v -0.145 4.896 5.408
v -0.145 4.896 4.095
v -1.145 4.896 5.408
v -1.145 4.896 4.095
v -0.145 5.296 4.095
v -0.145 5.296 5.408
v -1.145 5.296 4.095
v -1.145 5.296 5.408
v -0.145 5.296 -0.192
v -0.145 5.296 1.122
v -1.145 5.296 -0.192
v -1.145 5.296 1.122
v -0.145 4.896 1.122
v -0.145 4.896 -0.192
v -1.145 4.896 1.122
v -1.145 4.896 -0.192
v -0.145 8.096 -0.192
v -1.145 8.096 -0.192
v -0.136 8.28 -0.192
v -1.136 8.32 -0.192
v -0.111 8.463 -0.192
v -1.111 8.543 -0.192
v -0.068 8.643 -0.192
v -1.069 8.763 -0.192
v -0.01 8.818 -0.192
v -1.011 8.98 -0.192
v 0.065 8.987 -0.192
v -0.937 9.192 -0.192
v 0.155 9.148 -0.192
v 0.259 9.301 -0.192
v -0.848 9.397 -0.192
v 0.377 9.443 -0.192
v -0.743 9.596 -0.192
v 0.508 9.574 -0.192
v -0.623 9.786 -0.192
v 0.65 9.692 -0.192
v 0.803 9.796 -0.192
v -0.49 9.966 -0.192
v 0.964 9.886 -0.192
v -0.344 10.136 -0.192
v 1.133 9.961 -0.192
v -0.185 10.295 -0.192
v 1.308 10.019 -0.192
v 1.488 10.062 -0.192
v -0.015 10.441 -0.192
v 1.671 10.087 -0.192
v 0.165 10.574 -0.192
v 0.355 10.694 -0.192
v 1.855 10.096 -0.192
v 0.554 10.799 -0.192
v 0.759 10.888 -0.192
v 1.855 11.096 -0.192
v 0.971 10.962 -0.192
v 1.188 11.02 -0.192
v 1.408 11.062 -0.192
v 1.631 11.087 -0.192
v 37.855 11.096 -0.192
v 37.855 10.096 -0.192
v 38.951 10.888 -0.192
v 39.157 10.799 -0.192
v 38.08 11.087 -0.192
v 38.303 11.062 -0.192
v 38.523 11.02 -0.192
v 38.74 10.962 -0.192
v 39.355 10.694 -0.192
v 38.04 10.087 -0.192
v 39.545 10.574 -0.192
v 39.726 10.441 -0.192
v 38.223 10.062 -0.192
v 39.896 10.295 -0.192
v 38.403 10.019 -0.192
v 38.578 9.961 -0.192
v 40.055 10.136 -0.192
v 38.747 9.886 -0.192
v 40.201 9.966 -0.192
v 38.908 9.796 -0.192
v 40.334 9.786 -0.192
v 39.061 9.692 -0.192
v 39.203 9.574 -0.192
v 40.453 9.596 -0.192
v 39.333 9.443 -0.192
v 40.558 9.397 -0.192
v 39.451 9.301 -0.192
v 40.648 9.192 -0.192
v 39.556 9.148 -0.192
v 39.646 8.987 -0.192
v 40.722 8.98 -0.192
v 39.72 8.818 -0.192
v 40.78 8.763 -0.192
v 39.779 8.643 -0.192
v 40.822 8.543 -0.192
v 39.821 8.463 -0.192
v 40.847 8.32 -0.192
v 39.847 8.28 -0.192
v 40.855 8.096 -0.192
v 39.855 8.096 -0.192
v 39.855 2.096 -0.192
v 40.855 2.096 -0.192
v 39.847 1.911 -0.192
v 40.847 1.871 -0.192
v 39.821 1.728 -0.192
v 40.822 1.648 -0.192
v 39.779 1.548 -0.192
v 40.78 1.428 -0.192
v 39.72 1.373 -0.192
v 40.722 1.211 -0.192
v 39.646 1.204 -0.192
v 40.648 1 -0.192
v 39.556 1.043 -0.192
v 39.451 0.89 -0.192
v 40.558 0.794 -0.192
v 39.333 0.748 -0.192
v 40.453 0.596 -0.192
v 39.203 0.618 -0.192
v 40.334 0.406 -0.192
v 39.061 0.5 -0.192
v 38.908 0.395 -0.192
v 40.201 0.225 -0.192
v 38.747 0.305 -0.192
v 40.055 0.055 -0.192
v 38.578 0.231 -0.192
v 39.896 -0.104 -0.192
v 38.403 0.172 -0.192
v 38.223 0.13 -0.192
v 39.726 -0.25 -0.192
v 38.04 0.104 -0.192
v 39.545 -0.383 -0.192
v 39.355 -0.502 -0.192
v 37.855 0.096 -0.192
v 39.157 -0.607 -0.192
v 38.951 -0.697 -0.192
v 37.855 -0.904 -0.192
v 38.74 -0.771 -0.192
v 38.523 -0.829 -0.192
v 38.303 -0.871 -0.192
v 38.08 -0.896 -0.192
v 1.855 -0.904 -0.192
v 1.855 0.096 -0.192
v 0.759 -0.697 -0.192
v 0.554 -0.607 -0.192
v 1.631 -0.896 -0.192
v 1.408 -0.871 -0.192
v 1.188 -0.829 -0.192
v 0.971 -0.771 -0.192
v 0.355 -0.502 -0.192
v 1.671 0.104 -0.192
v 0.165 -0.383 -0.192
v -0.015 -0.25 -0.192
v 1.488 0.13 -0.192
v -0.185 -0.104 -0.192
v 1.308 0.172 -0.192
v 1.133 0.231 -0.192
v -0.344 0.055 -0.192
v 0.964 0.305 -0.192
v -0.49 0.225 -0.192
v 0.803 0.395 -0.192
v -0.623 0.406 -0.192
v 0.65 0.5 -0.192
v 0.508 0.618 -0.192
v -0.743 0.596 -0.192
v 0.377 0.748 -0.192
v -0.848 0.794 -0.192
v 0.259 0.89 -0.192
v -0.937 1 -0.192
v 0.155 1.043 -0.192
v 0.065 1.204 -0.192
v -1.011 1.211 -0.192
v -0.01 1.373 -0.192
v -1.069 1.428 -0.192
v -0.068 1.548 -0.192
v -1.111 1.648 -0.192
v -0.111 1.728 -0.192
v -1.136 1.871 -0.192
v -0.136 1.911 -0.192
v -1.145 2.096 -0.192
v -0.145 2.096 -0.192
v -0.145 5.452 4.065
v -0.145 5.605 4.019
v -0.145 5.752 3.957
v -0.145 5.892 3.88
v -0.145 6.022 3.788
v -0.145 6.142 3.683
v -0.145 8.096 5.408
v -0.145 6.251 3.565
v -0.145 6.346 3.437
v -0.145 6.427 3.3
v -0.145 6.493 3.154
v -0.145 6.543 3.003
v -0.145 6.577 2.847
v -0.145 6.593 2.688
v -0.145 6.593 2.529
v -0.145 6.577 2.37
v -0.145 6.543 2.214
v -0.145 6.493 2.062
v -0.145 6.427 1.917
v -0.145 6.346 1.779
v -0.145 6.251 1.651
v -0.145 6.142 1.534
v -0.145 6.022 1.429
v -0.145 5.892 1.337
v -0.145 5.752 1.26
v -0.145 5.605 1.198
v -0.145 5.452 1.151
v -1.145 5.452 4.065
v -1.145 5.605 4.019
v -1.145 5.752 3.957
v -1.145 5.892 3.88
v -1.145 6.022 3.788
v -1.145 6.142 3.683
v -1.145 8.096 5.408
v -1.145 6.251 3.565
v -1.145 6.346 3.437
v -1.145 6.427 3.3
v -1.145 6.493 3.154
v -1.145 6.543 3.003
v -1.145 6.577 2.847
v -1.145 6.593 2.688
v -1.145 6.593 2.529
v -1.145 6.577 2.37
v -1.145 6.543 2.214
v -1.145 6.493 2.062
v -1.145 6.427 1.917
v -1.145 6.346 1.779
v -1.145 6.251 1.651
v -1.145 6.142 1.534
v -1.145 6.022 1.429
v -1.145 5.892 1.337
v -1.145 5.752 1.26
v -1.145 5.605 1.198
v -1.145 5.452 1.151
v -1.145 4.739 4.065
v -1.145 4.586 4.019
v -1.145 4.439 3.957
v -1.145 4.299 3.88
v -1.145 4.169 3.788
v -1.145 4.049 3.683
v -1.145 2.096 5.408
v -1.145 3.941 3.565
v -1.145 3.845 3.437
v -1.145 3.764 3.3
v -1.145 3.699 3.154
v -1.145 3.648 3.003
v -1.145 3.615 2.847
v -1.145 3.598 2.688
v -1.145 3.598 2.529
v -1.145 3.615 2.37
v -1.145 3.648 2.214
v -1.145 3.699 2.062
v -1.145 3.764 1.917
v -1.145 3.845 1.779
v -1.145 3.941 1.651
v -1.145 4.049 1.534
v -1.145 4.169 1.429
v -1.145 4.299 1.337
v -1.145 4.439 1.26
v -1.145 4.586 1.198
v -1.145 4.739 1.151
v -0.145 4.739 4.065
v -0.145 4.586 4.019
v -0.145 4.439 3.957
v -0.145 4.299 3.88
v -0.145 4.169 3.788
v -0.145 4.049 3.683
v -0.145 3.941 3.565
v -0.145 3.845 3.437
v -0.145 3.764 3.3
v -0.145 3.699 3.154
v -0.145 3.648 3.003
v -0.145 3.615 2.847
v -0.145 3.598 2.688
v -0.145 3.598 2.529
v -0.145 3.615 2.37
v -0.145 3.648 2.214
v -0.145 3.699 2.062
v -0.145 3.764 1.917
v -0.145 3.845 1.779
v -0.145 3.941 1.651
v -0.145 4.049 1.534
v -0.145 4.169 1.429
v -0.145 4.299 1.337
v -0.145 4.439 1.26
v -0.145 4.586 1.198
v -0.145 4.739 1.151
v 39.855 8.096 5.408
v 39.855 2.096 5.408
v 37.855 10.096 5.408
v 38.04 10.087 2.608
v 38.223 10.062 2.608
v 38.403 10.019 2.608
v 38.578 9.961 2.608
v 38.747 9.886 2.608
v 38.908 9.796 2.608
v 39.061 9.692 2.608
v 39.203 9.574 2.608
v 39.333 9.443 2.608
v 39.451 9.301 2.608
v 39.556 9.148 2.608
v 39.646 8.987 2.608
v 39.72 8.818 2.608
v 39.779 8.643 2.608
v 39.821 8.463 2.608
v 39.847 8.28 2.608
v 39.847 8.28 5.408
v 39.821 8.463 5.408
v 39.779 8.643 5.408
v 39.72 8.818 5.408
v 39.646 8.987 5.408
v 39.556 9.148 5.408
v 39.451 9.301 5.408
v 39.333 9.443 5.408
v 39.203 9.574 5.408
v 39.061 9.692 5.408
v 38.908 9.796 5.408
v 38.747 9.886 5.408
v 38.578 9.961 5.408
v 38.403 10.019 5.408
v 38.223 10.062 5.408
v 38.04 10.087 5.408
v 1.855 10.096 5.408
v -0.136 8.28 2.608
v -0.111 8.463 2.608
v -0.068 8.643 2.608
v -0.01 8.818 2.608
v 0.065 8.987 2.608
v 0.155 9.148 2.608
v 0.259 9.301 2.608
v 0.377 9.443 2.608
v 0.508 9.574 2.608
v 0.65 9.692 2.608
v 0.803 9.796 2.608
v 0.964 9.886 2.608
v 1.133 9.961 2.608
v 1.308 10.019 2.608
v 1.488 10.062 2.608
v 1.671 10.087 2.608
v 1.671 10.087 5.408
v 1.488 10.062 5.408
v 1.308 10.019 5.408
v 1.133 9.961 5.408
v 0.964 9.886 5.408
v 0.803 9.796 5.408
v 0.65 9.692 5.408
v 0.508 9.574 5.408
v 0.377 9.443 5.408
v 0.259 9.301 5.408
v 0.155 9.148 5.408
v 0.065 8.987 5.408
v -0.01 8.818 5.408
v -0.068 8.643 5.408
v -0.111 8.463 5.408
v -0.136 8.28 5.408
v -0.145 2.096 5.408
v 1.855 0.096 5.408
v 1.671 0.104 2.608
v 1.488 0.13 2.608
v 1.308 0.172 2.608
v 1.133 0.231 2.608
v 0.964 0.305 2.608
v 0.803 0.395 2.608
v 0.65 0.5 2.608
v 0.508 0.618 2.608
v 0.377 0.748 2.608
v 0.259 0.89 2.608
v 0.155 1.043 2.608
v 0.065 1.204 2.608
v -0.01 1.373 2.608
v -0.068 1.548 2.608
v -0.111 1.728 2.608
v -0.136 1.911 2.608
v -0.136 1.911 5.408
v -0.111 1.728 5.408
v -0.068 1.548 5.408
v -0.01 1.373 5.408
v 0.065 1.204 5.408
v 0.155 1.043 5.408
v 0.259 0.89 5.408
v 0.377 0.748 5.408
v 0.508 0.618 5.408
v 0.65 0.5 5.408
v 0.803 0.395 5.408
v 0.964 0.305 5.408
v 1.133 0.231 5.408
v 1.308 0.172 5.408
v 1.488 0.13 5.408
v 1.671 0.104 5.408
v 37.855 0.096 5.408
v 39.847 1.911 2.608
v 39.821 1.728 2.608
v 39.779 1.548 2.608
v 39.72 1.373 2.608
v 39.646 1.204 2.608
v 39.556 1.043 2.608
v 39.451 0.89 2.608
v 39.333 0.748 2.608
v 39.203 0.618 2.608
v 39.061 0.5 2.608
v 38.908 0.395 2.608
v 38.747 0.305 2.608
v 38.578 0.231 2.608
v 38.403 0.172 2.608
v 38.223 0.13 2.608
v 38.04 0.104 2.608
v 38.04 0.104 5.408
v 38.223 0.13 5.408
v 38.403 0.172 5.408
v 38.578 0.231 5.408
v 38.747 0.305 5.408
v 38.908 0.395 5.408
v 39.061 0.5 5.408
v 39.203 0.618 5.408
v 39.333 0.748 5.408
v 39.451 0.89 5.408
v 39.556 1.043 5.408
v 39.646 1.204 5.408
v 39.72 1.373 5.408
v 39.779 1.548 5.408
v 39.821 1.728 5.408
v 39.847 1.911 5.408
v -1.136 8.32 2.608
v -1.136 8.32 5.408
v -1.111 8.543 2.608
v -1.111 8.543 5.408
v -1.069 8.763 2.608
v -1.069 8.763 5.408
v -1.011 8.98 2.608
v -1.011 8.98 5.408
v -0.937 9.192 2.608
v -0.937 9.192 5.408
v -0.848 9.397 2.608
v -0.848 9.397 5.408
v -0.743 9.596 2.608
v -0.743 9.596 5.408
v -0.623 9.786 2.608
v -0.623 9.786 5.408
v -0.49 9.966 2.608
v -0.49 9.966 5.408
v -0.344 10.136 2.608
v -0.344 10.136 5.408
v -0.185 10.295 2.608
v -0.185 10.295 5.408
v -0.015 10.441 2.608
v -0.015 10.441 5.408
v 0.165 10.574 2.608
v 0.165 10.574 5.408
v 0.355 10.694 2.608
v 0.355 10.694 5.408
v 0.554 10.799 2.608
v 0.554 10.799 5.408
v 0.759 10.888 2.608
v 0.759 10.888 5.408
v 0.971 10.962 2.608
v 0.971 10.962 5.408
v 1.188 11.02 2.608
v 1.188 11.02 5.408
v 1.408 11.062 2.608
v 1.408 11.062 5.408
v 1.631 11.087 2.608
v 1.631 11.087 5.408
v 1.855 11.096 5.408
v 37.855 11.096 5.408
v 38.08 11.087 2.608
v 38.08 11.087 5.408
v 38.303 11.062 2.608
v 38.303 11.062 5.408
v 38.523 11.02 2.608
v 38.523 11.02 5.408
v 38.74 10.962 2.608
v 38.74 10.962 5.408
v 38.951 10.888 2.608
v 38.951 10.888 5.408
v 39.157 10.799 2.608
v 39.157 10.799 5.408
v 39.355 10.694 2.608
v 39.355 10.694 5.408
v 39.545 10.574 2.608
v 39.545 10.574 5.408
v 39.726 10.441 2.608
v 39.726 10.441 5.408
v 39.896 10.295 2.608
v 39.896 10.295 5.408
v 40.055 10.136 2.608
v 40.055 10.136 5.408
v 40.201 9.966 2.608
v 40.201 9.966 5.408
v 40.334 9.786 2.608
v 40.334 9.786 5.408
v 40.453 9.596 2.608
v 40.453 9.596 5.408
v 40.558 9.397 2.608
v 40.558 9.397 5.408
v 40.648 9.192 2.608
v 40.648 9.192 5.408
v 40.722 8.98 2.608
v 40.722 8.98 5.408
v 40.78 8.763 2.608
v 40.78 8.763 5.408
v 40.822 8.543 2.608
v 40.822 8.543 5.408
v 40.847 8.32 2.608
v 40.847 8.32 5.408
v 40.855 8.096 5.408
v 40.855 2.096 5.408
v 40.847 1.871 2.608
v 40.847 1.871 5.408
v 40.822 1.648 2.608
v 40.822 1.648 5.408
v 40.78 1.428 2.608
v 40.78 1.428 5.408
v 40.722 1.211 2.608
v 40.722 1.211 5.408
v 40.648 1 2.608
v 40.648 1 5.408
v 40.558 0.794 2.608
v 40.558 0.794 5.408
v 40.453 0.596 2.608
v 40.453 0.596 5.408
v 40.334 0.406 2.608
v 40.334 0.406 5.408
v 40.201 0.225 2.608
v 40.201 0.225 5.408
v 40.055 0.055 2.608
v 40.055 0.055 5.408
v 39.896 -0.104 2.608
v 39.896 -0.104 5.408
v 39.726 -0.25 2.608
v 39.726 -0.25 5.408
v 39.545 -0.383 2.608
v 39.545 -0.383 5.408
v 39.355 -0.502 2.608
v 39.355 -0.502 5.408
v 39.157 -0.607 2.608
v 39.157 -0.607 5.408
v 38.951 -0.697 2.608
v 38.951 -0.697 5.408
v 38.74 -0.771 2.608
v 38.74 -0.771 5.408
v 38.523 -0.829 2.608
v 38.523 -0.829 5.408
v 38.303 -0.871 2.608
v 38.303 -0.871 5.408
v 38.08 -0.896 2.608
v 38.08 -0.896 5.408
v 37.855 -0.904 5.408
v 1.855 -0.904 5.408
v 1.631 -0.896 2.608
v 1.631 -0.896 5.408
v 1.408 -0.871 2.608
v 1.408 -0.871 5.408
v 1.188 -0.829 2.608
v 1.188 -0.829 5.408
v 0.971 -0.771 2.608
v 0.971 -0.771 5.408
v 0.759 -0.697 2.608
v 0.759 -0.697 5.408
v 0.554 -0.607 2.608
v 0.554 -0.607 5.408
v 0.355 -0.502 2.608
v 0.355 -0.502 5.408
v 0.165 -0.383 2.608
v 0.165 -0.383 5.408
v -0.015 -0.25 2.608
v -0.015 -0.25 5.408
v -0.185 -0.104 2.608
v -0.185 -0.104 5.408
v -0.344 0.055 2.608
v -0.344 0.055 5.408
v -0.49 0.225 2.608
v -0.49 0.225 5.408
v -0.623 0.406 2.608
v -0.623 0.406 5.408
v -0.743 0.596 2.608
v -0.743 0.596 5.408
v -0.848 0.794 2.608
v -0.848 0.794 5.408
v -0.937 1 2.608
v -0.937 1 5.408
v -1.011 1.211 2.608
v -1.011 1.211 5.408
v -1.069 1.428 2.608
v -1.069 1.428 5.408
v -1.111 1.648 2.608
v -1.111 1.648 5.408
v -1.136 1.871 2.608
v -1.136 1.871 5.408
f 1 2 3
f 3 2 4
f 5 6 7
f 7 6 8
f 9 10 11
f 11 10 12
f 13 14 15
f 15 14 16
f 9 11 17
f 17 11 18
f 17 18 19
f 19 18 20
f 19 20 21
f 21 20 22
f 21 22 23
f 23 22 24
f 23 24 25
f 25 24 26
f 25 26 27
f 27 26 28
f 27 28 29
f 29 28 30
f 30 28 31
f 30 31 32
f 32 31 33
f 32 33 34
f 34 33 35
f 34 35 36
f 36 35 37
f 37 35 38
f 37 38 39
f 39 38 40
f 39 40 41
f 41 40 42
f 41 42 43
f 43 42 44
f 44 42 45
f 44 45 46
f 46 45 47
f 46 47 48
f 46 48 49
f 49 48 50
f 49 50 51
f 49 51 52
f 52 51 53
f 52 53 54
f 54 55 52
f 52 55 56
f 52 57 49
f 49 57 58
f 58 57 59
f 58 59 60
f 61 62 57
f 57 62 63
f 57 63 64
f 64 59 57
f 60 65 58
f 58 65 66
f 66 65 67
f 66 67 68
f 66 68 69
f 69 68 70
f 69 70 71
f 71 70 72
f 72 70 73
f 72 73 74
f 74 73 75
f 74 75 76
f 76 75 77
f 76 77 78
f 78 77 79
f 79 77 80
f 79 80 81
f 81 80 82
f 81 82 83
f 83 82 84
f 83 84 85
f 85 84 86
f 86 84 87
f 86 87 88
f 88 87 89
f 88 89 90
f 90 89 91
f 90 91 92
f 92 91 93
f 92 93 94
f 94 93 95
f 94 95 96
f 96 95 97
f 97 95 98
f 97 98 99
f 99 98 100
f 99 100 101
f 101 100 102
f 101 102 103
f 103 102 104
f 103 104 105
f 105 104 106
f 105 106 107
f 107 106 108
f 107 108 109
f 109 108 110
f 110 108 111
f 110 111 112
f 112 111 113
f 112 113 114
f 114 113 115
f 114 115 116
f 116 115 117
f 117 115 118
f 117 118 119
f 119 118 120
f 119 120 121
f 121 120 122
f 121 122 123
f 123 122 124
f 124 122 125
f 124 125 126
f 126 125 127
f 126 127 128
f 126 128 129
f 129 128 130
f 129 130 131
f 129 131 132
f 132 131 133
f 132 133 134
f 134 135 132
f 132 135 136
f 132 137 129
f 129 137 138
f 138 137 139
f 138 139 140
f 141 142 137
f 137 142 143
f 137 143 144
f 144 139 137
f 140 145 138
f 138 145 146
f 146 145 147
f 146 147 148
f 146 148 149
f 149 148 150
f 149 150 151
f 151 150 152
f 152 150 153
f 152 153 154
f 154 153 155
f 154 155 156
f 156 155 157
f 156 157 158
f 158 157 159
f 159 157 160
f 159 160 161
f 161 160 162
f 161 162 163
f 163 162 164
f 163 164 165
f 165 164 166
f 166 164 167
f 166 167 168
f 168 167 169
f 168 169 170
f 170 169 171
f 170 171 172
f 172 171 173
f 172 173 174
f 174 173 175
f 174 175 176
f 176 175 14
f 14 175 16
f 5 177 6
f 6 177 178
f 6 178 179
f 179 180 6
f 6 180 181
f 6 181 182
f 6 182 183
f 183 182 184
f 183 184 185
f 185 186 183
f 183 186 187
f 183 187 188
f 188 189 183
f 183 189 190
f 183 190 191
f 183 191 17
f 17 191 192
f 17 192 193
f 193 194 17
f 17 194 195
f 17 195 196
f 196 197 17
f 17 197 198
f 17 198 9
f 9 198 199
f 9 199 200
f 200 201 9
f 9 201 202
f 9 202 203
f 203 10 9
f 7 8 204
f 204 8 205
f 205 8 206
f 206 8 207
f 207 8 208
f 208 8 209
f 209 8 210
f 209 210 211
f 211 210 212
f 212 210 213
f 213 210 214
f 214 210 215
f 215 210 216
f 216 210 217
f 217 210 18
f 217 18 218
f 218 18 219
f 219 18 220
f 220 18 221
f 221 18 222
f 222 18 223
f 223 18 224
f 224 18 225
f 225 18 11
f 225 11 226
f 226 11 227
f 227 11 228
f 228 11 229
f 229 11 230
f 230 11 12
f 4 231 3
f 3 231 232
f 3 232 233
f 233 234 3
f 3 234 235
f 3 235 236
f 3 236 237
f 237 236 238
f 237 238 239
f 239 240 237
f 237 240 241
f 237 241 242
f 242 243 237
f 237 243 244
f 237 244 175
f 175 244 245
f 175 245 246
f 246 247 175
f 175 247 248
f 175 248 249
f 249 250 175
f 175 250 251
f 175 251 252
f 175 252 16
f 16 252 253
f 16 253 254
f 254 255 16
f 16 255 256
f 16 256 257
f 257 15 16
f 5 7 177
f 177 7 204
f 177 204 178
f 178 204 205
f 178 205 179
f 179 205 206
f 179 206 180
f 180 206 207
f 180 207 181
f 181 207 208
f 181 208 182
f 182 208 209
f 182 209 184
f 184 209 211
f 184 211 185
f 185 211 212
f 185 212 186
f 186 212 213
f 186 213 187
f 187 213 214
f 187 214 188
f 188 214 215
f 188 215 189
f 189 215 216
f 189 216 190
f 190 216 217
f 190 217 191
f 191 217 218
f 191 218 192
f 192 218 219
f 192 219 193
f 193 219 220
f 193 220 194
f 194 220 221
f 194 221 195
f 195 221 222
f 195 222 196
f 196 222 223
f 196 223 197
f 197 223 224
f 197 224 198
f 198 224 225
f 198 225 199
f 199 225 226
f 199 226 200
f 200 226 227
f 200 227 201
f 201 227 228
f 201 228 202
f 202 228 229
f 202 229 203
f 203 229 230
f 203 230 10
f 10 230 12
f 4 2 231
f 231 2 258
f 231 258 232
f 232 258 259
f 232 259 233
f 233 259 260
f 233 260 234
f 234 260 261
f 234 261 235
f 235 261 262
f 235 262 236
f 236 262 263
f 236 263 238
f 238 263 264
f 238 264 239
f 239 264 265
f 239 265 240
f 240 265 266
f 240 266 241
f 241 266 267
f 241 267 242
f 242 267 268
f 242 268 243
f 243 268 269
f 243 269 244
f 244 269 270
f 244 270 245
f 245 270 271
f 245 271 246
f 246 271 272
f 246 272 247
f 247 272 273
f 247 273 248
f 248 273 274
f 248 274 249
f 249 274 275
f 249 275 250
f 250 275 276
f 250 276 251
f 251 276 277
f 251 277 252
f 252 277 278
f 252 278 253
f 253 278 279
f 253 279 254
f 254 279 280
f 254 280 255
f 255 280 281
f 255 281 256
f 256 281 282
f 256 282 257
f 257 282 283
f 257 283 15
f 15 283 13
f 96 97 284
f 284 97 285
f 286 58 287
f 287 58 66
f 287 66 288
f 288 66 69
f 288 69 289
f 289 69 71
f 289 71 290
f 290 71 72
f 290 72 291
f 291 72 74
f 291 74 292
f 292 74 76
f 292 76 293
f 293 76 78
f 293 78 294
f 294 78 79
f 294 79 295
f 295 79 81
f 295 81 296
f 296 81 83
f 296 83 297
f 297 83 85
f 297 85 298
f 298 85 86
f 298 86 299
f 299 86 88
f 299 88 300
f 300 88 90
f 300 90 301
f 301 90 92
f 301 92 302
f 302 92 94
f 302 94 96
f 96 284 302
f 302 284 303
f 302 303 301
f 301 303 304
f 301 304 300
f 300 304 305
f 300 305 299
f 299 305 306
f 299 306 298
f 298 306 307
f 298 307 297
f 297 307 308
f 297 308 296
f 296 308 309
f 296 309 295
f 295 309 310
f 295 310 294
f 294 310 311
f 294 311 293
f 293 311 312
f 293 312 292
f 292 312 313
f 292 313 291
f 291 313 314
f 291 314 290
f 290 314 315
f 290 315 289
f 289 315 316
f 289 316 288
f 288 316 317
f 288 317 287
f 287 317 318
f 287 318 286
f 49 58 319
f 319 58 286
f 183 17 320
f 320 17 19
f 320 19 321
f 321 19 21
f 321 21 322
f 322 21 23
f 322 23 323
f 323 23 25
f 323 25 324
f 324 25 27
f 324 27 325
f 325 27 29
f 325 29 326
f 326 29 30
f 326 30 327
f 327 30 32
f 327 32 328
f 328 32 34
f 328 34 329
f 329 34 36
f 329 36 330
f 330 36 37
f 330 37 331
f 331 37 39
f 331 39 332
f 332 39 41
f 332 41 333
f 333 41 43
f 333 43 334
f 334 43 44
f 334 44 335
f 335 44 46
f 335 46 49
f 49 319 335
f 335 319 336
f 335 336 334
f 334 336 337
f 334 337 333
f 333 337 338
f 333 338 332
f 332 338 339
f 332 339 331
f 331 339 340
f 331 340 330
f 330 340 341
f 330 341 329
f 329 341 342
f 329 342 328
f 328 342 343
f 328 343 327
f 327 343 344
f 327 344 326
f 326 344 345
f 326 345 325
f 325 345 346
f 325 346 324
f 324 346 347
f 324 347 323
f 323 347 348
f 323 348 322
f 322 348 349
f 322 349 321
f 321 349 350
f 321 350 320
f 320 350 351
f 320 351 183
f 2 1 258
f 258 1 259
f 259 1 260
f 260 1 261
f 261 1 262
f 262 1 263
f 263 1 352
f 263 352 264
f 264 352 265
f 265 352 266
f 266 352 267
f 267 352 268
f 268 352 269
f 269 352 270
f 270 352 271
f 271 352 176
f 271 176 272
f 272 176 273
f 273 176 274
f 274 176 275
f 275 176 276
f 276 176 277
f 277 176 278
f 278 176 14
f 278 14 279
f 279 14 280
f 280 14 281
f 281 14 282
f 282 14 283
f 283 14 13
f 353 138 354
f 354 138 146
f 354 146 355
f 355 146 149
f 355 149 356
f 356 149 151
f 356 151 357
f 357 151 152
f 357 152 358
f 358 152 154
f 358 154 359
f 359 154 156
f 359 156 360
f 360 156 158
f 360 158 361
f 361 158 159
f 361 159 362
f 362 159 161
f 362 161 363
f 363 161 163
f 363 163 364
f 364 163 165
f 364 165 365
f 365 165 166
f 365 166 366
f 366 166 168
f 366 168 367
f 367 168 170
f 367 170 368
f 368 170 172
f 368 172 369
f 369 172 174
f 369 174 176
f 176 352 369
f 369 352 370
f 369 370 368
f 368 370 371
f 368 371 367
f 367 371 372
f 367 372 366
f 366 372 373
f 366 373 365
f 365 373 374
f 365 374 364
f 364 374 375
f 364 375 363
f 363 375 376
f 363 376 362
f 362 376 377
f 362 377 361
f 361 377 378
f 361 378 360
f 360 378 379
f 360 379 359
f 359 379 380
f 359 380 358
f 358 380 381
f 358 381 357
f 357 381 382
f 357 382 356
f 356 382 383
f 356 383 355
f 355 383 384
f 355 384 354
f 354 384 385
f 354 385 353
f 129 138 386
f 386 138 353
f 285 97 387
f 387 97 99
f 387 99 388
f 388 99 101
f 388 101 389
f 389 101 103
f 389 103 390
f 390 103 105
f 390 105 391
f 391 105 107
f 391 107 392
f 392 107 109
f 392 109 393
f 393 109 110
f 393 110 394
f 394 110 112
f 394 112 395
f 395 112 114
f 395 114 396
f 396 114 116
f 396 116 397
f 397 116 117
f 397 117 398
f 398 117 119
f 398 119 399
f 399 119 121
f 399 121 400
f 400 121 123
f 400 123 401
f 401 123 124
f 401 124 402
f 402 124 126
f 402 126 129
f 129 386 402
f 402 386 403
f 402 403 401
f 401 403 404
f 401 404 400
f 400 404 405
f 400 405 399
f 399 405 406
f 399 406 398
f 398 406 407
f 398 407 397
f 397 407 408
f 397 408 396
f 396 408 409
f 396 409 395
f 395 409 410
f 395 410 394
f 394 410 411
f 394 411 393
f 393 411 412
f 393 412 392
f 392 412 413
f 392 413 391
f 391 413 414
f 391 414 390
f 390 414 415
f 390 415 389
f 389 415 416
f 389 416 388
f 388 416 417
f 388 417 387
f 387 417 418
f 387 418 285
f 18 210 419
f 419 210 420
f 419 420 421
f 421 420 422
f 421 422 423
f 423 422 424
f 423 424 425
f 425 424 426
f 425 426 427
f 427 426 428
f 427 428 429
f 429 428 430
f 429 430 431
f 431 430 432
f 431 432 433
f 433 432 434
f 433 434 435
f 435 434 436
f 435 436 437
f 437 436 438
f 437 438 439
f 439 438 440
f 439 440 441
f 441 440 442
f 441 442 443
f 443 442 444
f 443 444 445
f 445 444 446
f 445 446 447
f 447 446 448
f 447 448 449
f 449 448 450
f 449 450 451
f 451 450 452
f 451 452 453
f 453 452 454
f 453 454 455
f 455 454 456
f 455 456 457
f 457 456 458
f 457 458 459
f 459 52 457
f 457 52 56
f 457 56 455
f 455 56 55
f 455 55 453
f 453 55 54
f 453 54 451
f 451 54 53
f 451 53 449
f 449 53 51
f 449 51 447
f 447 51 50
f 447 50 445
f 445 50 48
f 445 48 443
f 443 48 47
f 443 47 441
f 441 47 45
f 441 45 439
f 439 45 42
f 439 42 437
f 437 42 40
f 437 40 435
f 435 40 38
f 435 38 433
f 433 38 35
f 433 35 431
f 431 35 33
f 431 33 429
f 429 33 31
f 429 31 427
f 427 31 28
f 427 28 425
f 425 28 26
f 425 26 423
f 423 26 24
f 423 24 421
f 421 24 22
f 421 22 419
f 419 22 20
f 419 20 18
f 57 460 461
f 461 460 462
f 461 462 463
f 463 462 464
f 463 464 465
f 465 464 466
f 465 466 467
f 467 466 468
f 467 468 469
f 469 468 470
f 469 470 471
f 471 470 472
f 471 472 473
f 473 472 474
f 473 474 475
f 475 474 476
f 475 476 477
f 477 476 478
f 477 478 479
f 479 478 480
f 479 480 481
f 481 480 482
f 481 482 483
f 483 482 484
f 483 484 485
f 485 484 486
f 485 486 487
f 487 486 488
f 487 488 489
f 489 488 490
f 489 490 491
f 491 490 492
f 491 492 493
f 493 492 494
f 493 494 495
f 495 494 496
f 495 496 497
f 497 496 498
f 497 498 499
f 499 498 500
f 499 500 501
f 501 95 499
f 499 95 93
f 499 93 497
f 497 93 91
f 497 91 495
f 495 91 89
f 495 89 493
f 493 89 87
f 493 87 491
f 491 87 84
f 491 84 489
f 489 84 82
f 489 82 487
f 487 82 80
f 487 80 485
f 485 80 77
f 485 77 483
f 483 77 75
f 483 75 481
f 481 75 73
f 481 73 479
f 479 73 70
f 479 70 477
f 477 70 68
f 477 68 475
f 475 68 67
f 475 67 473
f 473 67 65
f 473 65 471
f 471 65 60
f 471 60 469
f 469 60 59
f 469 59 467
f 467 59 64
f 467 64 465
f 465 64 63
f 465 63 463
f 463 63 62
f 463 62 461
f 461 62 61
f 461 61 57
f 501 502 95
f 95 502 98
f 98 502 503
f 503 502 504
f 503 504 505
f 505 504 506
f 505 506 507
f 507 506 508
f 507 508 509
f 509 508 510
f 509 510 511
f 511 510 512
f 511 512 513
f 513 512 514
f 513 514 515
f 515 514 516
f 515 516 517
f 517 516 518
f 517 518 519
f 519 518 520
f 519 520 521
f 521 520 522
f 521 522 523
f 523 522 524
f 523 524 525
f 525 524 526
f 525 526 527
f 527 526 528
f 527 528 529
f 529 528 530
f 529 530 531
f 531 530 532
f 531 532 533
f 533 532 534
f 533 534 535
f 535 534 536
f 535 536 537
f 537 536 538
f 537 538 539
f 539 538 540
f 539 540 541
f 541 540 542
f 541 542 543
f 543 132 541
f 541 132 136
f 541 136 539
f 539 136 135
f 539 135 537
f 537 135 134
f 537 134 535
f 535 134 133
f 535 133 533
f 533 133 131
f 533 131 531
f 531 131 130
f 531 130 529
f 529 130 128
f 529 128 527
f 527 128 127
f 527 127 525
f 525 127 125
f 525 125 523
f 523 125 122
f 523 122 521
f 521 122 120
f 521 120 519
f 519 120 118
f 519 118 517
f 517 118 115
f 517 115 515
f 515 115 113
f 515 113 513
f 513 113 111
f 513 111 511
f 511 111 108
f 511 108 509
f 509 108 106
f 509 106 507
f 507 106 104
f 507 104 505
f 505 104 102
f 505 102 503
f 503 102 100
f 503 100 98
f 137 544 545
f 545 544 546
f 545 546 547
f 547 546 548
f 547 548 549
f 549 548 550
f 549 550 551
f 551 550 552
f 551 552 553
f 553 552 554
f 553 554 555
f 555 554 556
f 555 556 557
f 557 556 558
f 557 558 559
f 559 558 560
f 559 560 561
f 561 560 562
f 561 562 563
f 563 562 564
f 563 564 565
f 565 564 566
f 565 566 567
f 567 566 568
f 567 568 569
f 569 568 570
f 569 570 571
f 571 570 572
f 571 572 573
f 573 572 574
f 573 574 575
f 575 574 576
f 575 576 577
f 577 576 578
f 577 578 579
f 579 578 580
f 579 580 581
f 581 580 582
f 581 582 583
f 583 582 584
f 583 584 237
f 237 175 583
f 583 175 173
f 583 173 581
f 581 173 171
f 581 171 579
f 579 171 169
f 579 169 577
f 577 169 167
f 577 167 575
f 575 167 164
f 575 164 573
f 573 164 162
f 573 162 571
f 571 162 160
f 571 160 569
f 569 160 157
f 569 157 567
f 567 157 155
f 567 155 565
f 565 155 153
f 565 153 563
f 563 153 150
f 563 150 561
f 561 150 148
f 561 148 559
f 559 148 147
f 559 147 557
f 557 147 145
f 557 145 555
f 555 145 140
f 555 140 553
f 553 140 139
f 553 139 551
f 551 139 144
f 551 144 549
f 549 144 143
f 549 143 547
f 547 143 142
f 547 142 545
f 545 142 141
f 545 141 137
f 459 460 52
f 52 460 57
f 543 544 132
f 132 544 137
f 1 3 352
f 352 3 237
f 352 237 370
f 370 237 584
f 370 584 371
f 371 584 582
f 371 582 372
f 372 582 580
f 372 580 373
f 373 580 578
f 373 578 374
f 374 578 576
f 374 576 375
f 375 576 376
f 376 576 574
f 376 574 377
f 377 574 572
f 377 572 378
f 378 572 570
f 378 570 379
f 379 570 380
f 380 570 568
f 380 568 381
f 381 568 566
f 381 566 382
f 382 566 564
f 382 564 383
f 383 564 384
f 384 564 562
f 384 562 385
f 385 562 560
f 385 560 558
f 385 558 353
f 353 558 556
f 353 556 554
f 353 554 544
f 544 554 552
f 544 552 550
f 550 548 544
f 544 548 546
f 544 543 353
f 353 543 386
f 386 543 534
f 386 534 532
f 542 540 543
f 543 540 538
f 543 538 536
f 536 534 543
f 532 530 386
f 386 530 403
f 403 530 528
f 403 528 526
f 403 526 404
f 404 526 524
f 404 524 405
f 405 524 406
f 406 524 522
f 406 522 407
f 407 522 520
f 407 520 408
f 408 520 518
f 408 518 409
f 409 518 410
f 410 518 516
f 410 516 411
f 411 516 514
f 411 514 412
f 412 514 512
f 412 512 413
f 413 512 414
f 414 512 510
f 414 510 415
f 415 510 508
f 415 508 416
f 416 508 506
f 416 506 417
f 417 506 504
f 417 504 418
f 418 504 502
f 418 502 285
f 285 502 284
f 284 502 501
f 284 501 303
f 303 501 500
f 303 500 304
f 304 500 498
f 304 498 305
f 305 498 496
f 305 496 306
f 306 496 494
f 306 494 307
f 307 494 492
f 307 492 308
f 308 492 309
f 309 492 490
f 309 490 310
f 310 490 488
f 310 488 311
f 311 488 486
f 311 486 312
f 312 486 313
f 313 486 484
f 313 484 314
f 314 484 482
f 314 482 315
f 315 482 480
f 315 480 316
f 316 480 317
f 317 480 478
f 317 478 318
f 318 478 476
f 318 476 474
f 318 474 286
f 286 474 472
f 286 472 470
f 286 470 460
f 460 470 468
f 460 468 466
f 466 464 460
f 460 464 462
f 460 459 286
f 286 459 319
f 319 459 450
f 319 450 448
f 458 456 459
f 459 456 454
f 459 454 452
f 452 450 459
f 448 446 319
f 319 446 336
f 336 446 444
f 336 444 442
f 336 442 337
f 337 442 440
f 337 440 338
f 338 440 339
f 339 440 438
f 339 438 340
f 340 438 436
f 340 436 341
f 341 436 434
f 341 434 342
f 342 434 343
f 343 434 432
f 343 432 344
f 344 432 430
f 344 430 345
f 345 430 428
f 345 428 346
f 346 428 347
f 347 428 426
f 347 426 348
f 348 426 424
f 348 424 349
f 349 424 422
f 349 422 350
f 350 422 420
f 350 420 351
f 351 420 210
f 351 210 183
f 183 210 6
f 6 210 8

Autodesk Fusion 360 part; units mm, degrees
sketch "Base" plane through (0, 0, 0) normal (0, 0, 1) x (1, 0, 0) in component " Thermistor Silicon Mold"
  line L0 (0, 0) -> (42, 0)
  line L1 (42, 0) -> (42, 12)
  line L2 (42, 12) -> (0, 12)
  line L3 (0, 12) -> (0, 0)
  dimension "d1" = 42
  dimension "d2" = 12
extrude "Extrude1" add sketch "Base" along normal blind 5.6 in component " Thermistor Silicon Mold"
fillet "Fillet1" radius 3 4 edges at (0, 0, 2.8) (42, 0, 2.8) (42, 12, 2.8) (0, 12, 2.8) in component " Thermistor Silicon Mold"
sketch "Hollow" plane through (0, 0, 5.6) normal (0, 0, 1) x (-1, 0, 0) in component " Thermistor Silicon Mold"
  arc A0 (-3, -12) -> (0, -9) centre (-3, -9) ccw
  line L0 (0, -9) -> (0, -3)
  arc A1 (0, -3) -> (-3, 0) centre (-3, -3) ccw
  line L1 (-3, 0) -> (-39, 0)
  arc A2 (-39, 0) -> (-42, -3) centre (-39, -3) ccw
  line L2 (-42, -3) -> (-42, -9)
  arc A3 (-42, -9) -> (-39, -12) centre (-39, -9) ccw
  line L3 (-39, -12) -> (-3, -12)
  line L4 (-1, -9) -> (-1, -3)
  arc A4 (-1, -3) -> (-3, -1) centre (-3, -3) ccw
  line L5 (-3, -1) -> (-39, -1)
  arc A5 (-39, -1) -> (-41, -3) centre (-39, -3) ccw
  line L6 (-41, -3) -> (-41, -9)
  arc A6 (-41, -9) -> (-39, -11) centre (-39, -9) ccw
  line L7 (-39, -11) -> (-3, -11)
  arc A7 (-3, -11) -> (-1, -9) centre (-3, -9) ccw
  dimension "d7" = -1
extrude "Extrude2" cut sketch "Hollow" against normal up to surface (5.6 mm away) contours L4 A4 L5 A5 L6 A6 L7 A7 in component " Thermistor Silicon Mold"
sketch "Hole" plane through (0, 0, 0) normal (-1, 0, 0) x (0, -1, 0) in component " Thermistor Silicon Mold"
  line L0 (-9, 5.6) -> (-9, 0)
  line L1 (-9, 0) -> (-3, 0)
  line L2 (-3, 0) -> (-3, 5.6)
  line L3 (-3, 5.6) -> (-9, 5.6)
  line L4 (-6, 5.6) -> (-6, 0) construction
  line L5 (-9, 2.8) -> (-3, 2.8) construction
  circle A0 centre (-6, 2.8) radius 1.5
  dimension "d10" = 3
extrude "Extrude3" cut sketch "Hole" against normal up to surface (1 mm away) contours A0 in component " Thermistor Silicon Mold"
sketch "Cut Through" plane through (0, 0, 0) normal (-1, 0, 0) x (0, -1, 0) in component " Thermistor Silicon Mold"
  circle A0 centre (-6, 2.8) radius 1.5
  line L0 (-9, 5.6) -> (-9, 0)
  line L1 (-9, 0) -> (-3, 0)
  line L2 (-3, 0) -> (-3, 5.6)
  line L3 (-3, 5.6) -> (-9, 5.6)
  line L4 (-6, 5.6) -> (-6, 0) construction
  line L5 (-6, 5.6) -> (-6.2, 5.6)
  line L6 (-6, 5.6) -> (-5.8, 5.6)
  line L7 (-6.2, 5.6) -> (-6.2, 0)
  line L8 (-5.8, 5.6) -> (-5.8, 0)
  line L9 (-6.2, 0) -> (-5.8, 0)
  dimension "d13" = 0.2
  dimension "d14" = 0.2
extrude "Extrude4" cut sketch "Cut Through" against normal up to surface (1 mm away) contours A0 L3 L5 L6 L7 L8 | A0 L1 L7 L8 L9 in component " Thermistor Silicon Mold"
component " Thermistor Silicon Mold" placed x (1, 0, 0) y (0, 1, 0) z (0, 0, 1) at (-1.1446, -0.9044, -0.1917)
